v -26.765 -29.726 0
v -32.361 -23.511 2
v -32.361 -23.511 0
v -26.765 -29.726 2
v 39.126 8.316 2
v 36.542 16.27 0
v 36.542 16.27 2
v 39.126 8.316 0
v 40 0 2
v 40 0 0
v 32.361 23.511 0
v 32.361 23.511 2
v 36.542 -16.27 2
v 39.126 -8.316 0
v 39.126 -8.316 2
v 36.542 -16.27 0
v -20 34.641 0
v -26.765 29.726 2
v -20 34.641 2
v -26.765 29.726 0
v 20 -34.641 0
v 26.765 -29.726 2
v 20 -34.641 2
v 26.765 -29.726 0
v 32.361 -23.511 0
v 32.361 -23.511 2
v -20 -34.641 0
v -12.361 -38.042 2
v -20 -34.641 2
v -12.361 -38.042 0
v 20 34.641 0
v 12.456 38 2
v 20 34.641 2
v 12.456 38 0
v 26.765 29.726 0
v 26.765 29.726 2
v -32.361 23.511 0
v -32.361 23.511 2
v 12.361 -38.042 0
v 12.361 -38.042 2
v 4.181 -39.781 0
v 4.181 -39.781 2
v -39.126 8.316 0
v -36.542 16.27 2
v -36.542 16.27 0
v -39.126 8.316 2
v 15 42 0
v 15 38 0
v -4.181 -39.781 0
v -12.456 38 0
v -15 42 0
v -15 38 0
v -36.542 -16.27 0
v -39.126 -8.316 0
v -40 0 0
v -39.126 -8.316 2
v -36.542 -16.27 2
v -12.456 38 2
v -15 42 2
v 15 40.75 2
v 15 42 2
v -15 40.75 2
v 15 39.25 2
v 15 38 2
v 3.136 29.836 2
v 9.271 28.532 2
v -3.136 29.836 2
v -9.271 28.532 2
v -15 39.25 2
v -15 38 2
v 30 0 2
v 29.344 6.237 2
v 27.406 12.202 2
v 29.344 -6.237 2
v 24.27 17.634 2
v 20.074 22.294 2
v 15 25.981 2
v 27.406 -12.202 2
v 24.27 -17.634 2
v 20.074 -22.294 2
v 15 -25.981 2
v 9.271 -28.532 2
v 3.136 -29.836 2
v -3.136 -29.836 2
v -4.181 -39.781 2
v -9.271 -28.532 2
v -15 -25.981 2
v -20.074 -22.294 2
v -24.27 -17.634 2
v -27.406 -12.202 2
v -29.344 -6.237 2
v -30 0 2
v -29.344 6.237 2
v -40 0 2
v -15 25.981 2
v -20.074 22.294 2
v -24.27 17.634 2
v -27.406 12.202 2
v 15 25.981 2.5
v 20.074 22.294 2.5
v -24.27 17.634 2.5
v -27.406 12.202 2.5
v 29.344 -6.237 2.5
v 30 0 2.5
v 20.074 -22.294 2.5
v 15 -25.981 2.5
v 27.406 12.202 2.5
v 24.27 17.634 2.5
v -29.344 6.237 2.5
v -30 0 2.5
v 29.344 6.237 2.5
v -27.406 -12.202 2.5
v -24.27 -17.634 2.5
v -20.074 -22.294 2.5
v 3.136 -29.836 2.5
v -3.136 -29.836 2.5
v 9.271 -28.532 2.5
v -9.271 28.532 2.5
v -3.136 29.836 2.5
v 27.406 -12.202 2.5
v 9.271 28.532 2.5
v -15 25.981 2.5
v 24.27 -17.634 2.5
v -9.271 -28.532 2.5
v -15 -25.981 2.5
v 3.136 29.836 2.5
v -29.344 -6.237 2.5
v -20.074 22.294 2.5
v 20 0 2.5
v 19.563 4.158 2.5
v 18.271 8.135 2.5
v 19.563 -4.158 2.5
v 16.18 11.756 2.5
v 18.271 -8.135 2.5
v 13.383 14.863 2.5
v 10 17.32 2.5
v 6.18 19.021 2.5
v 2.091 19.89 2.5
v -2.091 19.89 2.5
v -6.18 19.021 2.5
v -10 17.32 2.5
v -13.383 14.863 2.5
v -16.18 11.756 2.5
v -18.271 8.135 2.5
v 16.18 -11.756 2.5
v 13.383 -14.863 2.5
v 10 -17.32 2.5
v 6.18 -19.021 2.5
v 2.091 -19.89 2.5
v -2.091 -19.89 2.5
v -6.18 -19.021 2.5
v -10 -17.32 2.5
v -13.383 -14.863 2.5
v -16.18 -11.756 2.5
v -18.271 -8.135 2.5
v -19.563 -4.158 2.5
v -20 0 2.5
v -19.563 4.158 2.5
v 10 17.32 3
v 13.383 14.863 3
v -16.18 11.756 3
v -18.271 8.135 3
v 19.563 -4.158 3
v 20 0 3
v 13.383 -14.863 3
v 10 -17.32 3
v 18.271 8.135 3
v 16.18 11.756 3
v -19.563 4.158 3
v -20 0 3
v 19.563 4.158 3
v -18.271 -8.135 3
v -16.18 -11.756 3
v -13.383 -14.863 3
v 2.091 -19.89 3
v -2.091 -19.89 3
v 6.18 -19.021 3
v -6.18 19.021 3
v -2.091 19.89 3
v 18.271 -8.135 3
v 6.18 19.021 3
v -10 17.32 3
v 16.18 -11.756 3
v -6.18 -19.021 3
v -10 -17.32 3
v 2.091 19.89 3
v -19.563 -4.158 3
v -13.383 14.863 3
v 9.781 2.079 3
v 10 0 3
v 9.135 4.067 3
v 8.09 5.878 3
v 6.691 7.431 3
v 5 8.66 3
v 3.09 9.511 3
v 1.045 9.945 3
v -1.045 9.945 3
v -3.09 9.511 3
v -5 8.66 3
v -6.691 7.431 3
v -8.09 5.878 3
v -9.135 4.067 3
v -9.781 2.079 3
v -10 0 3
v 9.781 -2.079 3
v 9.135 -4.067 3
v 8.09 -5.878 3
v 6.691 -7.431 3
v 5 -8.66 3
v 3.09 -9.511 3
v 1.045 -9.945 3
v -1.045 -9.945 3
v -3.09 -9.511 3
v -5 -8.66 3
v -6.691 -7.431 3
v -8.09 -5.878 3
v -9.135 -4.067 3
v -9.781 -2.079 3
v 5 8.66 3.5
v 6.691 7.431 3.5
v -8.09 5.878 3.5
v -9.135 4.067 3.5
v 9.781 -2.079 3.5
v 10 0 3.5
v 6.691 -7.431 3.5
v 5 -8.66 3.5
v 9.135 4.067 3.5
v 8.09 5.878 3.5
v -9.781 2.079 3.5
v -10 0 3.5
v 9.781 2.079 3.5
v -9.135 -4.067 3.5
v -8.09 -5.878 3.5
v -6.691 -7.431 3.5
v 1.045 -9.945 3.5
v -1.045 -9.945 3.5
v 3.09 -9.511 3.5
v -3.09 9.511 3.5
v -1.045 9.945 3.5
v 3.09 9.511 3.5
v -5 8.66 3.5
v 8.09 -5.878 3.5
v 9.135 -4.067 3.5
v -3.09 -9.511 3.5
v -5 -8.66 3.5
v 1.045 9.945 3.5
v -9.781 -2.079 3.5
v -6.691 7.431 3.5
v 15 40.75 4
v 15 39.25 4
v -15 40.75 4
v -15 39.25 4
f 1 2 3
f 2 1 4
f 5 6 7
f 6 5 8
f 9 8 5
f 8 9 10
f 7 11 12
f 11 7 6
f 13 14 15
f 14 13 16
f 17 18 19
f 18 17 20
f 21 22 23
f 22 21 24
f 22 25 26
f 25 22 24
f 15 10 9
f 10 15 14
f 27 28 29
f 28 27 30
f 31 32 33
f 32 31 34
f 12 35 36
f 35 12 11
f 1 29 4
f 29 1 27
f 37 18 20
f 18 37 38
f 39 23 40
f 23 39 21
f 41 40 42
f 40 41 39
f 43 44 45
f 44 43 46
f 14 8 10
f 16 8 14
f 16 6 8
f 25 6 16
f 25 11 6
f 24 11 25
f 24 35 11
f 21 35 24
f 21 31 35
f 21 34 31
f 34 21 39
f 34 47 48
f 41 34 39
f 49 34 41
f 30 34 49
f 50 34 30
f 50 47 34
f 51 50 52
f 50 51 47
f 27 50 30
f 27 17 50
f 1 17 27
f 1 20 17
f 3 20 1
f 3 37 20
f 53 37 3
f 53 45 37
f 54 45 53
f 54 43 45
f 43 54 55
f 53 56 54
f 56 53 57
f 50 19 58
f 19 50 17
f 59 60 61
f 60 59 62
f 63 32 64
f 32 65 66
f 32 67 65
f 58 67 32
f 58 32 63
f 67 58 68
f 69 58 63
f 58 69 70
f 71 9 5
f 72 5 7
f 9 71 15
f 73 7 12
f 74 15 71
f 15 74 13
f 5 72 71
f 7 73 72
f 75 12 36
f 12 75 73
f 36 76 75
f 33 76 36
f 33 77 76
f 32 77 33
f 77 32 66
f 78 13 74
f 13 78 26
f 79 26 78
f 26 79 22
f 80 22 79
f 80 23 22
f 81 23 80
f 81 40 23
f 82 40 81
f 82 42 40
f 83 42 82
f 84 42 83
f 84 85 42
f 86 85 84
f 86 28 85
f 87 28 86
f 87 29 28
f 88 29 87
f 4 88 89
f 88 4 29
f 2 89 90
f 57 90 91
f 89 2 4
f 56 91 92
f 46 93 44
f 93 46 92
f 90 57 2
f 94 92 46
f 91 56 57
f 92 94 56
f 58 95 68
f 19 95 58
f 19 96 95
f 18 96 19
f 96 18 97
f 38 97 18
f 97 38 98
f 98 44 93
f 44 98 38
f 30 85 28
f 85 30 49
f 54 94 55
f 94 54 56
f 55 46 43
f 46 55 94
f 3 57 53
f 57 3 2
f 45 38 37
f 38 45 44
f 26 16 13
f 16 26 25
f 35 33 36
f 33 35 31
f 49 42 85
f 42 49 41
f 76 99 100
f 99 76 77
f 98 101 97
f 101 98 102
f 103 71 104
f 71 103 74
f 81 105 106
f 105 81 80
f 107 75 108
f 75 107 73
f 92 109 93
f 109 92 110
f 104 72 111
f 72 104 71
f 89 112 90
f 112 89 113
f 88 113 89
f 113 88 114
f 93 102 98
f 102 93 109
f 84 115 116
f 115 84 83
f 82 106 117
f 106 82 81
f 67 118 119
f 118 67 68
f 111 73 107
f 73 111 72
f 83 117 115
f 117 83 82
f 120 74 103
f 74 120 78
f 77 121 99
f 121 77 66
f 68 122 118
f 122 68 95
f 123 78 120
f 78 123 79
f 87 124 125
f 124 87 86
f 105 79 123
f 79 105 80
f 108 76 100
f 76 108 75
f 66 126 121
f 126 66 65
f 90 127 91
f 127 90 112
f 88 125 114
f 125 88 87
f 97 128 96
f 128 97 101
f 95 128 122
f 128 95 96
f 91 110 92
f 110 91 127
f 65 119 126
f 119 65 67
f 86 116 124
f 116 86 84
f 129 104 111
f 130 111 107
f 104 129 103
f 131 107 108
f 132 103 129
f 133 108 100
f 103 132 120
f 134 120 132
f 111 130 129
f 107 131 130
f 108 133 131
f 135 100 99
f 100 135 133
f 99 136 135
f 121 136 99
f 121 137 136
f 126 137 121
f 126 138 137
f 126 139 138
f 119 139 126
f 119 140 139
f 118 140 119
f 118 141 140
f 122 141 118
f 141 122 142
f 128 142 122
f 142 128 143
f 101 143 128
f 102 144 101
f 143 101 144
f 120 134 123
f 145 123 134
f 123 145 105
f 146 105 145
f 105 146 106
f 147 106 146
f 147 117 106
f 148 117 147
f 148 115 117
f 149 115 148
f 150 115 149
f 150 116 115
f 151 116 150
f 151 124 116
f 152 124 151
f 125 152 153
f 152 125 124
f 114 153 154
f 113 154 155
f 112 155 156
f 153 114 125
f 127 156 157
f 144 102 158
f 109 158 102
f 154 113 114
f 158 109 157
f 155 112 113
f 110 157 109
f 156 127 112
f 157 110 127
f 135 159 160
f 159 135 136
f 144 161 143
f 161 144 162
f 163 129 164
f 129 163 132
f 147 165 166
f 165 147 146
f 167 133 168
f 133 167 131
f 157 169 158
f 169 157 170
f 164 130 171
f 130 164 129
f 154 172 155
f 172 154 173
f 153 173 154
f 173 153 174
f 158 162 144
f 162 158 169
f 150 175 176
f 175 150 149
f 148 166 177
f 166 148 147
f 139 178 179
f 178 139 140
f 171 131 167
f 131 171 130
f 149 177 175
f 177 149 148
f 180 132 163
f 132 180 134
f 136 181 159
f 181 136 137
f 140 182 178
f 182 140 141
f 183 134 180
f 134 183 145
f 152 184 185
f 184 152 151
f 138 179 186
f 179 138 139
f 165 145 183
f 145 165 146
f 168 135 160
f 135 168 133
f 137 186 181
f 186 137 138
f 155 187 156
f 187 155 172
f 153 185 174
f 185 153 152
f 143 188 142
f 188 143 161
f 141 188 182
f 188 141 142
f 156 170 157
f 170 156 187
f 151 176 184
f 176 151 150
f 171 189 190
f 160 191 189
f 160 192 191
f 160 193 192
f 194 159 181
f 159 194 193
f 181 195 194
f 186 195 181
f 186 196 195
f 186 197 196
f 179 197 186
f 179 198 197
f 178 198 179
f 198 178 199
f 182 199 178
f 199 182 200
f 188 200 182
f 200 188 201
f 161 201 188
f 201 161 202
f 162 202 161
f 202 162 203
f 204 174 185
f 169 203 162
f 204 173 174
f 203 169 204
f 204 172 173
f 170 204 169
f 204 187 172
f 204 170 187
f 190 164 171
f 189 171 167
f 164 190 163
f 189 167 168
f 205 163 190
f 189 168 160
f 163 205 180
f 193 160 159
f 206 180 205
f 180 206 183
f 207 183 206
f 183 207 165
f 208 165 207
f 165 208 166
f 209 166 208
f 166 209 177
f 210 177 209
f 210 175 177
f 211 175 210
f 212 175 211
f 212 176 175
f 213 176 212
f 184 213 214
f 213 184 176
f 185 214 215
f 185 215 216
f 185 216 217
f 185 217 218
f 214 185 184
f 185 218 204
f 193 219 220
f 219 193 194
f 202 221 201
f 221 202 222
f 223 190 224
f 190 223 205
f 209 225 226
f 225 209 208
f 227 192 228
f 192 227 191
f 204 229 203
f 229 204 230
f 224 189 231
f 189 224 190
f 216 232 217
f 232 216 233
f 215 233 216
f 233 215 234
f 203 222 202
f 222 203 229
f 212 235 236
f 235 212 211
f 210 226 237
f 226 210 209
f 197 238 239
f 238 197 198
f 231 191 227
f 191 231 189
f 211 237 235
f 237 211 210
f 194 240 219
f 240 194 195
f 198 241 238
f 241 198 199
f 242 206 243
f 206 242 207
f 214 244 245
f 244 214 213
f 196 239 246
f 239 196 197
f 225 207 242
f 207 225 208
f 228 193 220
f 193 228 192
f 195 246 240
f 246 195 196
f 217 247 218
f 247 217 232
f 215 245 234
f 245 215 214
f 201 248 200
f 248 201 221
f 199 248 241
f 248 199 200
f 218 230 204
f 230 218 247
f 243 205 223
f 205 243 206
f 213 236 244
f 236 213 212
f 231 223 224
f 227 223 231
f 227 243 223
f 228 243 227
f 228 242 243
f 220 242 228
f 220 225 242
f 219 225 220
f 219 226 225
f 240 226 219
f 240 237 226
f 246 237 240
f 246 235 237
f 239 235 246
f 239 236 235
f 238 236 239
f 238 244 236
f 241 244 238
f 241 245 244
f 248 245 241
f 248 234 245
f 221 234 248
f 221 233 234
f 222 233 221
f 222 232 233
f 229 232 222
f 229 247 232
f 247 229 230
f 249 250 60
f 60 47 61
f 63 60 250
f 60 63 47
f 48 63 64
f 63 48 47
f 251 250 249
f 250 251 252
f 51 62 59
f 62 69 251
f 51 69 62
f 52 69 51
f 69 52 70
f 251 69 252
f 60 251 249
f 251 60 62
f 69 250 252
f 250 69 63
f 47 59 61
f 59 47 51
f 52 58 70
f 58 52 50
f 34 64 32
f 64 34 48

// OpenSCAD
module target()
{
    cylinder(r=40,h=2);
    cylinder(r=30,h=2.5);
    cylinder(r=20,h=3);
    cylinder(r=10,h=3.5);
    translate([-15,39.25,0]) cube([30,1.5,4]);
    translate([-15,38,0]) cube([30,4,2]);
    
}

module mount()
{
    difference(){
       rotate([0,90,0]) translate([-1,40,-14]) cylinder(r=8.5,h=28);
       rotate([0,90,0]) translate([-1,40,-15]) cylinder(r=3.5,h=30);
       scale([1.005,1.005,1.005]) translate([0,-6.7,0])  target();
       }
}


target();
